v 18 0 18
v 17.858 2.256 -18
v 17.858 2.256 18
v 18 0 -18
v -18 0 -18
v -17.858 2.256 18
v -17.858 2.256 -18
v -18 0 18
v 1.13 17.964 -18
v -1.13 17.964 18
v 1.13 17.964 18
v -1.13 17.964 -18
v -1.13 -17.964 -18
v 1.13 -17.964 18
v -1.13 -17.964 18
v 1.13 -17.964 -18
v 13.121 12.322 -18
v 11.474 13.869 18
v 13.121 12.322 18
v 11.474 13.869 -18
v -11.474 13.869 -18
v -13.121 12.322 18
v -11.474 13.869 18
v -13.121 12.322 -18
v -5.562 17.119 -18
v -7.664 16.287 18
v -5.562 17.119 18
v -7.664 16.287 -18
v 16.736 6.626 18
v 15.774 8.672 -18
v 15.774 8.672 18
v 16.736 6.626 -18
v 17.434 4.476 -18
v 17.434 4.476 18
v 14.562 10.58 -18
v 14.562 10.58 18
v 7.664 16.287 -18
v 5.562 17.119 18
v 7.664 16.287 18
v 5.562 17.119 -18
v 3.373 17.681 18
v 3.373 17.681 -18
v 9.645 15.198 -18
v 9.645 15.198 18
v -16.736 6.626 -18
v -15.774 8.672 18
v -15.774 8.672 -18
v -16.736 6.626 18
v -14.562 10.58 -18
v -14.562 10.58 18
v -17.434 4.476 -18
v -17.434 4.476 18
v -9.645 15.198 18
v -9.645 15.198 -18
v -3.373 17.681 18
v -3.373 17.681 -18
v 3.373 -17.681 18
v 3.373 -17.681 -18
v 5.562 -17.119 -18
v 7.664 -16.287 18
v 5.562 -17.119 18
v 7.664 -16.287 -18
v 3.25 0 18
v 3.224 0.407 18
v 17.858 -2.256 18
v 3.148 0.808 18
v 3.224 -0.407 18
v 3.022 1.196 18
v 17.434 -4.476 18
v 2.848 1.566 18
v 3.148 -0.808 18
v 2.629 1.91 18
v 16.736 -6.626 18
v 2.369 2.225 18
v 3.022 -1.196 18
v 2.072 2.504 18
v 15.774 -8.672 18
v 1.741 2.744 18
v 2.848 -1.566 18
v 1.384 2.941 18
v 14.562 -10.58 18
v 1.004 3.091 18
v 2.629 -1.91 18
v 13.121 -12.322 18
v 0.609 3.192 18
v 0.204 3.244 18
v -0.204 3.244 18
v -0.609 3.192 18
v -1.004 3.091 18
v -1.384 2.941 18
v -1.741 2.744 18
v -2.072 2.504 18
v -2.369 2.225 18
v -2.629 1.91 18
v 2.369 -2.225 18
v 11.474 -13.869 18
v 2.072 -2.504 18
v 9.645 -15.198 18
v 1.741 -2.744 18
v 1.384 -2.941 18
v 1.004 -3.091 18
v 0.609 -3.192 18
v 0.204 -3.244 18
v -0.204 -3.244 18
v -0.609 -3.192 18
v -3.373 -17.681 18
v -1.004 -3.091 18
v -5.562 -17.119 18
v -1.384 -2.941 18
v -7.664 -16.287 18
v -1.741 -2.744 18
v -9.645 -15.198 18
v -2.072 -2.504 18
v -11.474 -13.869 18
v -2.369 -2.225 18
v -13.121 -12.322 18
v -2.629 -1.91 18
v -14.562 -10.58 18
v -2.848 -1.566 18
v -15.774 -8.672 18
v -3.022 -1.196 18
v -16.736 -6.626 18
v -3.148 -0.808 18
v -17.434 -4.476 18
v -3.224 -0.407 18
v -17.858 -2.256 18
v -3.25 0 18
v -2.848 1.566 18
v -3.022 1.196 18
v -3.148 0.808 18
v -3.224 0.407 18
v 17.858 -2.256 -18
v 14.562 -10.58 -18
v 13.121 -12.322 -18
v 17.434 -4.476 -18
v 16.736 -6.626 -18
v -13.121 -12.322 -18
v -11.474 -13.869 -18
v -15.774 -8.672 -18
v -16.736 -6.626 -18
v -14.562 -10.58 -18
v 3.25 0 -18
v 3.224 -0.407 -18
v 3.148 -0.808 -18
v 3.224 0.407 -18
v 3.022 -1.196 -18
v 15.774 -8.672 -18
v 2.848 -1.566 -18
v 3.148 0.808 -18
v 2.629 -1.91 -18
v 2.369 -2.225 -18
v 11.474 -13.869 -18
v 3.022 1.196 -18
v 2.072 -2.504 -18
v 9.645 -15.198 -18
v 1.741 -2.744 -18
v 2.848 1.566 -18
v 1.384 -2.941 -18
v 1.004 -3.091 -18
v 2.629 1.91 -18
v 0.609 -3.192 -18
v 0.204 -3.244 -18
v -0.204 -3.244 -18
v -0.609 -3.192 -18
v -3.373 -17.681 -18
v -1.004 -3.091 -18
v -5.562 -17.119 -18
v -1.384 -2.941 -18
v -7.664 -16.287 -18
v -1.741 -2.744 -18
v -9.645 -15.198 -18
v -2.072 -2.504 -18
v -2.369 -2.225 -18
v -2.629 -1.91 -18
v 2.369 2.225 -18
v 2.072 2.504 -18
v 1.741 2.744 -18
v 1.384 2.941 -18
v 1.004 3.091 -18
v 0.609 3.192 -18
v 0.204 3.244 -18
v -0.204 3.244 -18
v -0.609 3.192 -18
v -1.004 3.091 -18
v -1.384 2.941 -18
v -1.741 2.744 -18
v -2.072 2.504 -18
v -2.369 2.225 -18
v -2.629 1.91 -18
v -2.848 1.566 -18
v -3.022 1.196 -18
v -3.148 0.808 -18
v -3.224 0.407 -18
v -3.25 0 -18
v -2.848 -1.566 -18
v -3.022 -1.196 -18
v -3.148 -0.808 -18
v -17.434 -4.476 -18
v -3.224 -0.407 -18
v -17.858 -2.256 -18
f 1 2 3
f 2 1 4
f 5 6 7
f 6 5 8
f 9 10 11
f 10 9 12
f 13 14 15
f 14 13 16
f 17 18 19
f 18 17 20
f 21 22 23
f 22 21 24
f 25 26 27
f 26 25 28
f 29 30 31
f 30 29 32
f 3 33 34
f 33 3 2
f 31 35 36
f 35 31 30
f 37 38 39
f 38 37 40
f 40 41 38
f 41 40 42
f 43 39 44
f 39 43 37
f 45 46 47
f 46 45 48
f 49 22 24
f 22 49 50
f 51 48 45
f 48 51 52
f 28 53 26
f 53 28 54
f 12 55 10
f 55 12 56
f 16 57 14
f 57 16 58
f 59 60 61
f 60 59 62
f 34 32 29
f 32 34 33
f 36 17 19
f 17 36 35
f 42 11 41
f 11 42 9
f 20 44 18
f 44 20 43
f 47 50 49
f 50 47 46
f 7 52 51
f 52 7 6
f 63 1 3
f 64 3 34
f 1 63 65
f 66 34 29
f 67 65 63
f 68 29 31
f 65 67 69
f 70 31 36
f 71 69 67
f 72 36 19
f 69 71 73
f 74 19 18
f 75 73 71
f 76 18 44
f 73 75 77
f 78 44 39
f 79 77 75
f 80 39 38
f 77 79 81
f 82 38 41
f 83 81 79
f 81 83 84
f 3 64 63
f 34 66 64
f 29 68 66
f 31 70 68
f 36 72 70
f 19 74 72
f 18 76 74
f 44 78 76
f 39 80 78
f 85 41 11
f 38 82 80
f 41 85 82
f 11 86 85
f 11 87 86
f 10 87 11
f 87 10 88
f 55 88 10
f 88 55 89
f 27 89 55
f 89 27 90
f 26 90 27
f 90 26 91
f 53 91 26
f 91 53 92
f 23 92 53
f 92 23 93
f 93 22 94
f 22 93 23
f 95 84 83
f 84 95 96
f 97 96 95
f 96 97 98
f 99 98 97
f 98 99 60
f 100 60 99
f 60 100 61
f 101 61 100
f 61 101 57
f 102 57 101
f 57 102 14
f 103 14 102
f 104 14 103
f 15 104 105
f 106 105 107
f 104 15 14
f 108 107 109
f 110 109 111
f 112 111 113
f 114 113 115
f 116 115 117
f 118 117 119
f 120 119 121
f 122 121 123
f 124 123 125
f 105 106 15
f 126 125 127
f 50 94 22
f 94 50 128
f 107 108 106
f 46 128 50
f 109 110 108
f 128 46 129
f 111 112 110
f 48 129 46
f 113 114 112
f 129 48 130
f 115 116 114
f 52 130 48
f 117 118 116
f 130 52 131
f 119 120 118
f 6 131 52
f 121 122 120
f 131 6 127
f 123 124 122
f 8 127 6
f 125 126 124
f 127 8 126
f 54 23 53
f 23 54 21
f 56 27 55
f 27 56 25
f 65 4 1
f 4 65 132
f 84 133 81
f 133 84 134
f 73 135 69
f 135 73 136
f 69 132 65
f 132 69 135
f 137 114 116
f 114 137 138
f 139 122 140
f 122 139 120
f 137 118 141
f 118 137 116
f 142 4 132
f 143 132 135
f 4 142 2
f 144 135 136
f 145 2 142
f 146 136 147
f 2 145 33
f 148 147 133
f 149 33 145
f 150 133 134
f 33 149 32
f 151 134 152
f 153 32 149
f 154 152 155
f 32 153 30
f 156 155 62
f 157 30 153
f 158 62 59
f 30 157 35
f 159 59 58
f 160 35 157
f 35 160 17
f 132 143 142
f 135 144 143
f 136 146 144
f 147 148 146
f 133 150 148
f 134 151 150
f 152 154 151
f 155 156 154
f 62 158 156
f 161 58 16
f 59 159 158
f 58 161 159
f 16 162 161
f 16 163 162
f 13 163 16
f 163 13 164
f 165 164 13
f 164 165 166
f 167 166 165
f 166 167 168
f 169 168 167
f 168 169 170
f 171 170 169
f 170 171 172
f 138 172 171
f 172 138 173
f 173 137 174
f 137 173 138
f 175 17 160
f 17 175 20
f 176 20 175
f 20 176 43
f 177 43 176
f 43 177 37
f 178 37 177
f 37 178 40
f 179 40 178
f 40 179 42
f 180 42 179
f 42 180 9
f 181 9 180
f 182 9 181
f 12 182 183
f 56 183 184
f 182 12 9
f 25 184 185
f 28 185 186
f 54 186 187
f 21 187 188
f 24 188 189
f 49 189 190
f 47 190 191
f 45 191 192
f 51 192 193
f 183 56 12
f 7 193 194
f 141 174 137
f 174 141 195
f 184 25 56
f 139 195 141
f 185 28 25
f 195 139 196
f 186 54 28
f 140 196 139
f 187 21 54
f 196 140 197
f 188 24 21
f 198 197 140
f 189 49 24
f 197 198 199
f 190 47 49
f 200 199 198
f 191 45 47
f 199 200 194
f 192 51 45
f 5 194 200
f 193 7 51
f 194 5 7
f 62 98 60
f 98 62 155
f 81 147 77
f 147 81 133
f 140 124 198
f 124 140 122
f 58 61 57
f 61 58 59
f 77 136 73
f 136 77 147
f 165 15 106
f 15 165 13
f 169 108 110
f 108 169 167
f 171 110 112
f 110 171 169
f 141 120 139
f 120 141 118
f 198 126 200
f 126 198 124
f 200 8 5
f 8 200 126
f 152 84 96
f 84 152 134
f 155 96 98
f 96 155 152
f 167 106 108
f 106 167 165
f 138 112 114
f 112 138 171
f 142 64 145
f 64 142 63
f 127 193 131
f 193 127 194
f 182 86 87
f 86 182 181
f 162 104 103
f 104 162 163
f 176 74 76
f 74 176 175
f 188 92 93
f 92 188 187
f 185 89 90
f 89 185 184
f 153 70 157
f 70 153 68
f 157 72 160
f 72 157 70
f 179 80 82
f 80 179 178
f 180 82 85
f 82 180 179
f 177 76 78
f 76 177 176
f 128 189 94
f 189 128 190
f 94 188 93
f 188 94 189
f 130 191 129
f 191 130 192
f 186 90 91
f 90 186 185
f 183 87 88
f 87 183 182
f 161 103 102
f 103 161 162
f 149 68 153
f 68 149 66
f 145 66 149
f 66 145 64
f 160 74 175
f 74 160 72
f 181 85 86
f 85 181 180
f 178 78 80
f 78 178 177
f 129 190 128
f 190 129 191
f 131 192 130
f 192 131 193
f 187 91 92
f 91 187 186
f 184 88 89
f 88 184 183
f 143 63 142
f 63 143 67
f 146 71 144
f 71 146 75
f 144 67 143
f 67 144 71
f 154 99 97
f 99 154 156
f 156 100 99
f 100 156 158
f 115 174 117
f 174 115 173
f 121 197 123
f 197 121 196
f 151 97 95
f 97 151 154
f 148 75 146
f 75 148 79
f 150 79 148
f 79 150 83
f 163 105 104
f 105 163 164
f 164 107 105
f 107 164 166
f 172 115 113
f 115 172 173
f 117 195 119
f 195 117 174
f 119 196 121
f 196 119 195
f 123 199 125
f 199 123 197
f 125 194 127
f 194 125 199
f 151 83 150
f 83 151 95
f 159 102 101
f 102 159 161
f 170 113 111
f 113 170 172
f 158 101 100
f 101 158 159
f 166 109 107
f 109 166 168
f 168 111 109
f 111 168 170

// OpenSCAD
$fn = 50;


difference() {
	union() {
		translate(v = [0, 0, -18.0000000000]) {
			cylinder(h = 36, r = 18.0000000000);
		}
	}
	union() {
		translate(v = [0, 0, -100.0000000000]) {
			cylinder(h = 200, r = 3.2500000000);
		}
	}
}
